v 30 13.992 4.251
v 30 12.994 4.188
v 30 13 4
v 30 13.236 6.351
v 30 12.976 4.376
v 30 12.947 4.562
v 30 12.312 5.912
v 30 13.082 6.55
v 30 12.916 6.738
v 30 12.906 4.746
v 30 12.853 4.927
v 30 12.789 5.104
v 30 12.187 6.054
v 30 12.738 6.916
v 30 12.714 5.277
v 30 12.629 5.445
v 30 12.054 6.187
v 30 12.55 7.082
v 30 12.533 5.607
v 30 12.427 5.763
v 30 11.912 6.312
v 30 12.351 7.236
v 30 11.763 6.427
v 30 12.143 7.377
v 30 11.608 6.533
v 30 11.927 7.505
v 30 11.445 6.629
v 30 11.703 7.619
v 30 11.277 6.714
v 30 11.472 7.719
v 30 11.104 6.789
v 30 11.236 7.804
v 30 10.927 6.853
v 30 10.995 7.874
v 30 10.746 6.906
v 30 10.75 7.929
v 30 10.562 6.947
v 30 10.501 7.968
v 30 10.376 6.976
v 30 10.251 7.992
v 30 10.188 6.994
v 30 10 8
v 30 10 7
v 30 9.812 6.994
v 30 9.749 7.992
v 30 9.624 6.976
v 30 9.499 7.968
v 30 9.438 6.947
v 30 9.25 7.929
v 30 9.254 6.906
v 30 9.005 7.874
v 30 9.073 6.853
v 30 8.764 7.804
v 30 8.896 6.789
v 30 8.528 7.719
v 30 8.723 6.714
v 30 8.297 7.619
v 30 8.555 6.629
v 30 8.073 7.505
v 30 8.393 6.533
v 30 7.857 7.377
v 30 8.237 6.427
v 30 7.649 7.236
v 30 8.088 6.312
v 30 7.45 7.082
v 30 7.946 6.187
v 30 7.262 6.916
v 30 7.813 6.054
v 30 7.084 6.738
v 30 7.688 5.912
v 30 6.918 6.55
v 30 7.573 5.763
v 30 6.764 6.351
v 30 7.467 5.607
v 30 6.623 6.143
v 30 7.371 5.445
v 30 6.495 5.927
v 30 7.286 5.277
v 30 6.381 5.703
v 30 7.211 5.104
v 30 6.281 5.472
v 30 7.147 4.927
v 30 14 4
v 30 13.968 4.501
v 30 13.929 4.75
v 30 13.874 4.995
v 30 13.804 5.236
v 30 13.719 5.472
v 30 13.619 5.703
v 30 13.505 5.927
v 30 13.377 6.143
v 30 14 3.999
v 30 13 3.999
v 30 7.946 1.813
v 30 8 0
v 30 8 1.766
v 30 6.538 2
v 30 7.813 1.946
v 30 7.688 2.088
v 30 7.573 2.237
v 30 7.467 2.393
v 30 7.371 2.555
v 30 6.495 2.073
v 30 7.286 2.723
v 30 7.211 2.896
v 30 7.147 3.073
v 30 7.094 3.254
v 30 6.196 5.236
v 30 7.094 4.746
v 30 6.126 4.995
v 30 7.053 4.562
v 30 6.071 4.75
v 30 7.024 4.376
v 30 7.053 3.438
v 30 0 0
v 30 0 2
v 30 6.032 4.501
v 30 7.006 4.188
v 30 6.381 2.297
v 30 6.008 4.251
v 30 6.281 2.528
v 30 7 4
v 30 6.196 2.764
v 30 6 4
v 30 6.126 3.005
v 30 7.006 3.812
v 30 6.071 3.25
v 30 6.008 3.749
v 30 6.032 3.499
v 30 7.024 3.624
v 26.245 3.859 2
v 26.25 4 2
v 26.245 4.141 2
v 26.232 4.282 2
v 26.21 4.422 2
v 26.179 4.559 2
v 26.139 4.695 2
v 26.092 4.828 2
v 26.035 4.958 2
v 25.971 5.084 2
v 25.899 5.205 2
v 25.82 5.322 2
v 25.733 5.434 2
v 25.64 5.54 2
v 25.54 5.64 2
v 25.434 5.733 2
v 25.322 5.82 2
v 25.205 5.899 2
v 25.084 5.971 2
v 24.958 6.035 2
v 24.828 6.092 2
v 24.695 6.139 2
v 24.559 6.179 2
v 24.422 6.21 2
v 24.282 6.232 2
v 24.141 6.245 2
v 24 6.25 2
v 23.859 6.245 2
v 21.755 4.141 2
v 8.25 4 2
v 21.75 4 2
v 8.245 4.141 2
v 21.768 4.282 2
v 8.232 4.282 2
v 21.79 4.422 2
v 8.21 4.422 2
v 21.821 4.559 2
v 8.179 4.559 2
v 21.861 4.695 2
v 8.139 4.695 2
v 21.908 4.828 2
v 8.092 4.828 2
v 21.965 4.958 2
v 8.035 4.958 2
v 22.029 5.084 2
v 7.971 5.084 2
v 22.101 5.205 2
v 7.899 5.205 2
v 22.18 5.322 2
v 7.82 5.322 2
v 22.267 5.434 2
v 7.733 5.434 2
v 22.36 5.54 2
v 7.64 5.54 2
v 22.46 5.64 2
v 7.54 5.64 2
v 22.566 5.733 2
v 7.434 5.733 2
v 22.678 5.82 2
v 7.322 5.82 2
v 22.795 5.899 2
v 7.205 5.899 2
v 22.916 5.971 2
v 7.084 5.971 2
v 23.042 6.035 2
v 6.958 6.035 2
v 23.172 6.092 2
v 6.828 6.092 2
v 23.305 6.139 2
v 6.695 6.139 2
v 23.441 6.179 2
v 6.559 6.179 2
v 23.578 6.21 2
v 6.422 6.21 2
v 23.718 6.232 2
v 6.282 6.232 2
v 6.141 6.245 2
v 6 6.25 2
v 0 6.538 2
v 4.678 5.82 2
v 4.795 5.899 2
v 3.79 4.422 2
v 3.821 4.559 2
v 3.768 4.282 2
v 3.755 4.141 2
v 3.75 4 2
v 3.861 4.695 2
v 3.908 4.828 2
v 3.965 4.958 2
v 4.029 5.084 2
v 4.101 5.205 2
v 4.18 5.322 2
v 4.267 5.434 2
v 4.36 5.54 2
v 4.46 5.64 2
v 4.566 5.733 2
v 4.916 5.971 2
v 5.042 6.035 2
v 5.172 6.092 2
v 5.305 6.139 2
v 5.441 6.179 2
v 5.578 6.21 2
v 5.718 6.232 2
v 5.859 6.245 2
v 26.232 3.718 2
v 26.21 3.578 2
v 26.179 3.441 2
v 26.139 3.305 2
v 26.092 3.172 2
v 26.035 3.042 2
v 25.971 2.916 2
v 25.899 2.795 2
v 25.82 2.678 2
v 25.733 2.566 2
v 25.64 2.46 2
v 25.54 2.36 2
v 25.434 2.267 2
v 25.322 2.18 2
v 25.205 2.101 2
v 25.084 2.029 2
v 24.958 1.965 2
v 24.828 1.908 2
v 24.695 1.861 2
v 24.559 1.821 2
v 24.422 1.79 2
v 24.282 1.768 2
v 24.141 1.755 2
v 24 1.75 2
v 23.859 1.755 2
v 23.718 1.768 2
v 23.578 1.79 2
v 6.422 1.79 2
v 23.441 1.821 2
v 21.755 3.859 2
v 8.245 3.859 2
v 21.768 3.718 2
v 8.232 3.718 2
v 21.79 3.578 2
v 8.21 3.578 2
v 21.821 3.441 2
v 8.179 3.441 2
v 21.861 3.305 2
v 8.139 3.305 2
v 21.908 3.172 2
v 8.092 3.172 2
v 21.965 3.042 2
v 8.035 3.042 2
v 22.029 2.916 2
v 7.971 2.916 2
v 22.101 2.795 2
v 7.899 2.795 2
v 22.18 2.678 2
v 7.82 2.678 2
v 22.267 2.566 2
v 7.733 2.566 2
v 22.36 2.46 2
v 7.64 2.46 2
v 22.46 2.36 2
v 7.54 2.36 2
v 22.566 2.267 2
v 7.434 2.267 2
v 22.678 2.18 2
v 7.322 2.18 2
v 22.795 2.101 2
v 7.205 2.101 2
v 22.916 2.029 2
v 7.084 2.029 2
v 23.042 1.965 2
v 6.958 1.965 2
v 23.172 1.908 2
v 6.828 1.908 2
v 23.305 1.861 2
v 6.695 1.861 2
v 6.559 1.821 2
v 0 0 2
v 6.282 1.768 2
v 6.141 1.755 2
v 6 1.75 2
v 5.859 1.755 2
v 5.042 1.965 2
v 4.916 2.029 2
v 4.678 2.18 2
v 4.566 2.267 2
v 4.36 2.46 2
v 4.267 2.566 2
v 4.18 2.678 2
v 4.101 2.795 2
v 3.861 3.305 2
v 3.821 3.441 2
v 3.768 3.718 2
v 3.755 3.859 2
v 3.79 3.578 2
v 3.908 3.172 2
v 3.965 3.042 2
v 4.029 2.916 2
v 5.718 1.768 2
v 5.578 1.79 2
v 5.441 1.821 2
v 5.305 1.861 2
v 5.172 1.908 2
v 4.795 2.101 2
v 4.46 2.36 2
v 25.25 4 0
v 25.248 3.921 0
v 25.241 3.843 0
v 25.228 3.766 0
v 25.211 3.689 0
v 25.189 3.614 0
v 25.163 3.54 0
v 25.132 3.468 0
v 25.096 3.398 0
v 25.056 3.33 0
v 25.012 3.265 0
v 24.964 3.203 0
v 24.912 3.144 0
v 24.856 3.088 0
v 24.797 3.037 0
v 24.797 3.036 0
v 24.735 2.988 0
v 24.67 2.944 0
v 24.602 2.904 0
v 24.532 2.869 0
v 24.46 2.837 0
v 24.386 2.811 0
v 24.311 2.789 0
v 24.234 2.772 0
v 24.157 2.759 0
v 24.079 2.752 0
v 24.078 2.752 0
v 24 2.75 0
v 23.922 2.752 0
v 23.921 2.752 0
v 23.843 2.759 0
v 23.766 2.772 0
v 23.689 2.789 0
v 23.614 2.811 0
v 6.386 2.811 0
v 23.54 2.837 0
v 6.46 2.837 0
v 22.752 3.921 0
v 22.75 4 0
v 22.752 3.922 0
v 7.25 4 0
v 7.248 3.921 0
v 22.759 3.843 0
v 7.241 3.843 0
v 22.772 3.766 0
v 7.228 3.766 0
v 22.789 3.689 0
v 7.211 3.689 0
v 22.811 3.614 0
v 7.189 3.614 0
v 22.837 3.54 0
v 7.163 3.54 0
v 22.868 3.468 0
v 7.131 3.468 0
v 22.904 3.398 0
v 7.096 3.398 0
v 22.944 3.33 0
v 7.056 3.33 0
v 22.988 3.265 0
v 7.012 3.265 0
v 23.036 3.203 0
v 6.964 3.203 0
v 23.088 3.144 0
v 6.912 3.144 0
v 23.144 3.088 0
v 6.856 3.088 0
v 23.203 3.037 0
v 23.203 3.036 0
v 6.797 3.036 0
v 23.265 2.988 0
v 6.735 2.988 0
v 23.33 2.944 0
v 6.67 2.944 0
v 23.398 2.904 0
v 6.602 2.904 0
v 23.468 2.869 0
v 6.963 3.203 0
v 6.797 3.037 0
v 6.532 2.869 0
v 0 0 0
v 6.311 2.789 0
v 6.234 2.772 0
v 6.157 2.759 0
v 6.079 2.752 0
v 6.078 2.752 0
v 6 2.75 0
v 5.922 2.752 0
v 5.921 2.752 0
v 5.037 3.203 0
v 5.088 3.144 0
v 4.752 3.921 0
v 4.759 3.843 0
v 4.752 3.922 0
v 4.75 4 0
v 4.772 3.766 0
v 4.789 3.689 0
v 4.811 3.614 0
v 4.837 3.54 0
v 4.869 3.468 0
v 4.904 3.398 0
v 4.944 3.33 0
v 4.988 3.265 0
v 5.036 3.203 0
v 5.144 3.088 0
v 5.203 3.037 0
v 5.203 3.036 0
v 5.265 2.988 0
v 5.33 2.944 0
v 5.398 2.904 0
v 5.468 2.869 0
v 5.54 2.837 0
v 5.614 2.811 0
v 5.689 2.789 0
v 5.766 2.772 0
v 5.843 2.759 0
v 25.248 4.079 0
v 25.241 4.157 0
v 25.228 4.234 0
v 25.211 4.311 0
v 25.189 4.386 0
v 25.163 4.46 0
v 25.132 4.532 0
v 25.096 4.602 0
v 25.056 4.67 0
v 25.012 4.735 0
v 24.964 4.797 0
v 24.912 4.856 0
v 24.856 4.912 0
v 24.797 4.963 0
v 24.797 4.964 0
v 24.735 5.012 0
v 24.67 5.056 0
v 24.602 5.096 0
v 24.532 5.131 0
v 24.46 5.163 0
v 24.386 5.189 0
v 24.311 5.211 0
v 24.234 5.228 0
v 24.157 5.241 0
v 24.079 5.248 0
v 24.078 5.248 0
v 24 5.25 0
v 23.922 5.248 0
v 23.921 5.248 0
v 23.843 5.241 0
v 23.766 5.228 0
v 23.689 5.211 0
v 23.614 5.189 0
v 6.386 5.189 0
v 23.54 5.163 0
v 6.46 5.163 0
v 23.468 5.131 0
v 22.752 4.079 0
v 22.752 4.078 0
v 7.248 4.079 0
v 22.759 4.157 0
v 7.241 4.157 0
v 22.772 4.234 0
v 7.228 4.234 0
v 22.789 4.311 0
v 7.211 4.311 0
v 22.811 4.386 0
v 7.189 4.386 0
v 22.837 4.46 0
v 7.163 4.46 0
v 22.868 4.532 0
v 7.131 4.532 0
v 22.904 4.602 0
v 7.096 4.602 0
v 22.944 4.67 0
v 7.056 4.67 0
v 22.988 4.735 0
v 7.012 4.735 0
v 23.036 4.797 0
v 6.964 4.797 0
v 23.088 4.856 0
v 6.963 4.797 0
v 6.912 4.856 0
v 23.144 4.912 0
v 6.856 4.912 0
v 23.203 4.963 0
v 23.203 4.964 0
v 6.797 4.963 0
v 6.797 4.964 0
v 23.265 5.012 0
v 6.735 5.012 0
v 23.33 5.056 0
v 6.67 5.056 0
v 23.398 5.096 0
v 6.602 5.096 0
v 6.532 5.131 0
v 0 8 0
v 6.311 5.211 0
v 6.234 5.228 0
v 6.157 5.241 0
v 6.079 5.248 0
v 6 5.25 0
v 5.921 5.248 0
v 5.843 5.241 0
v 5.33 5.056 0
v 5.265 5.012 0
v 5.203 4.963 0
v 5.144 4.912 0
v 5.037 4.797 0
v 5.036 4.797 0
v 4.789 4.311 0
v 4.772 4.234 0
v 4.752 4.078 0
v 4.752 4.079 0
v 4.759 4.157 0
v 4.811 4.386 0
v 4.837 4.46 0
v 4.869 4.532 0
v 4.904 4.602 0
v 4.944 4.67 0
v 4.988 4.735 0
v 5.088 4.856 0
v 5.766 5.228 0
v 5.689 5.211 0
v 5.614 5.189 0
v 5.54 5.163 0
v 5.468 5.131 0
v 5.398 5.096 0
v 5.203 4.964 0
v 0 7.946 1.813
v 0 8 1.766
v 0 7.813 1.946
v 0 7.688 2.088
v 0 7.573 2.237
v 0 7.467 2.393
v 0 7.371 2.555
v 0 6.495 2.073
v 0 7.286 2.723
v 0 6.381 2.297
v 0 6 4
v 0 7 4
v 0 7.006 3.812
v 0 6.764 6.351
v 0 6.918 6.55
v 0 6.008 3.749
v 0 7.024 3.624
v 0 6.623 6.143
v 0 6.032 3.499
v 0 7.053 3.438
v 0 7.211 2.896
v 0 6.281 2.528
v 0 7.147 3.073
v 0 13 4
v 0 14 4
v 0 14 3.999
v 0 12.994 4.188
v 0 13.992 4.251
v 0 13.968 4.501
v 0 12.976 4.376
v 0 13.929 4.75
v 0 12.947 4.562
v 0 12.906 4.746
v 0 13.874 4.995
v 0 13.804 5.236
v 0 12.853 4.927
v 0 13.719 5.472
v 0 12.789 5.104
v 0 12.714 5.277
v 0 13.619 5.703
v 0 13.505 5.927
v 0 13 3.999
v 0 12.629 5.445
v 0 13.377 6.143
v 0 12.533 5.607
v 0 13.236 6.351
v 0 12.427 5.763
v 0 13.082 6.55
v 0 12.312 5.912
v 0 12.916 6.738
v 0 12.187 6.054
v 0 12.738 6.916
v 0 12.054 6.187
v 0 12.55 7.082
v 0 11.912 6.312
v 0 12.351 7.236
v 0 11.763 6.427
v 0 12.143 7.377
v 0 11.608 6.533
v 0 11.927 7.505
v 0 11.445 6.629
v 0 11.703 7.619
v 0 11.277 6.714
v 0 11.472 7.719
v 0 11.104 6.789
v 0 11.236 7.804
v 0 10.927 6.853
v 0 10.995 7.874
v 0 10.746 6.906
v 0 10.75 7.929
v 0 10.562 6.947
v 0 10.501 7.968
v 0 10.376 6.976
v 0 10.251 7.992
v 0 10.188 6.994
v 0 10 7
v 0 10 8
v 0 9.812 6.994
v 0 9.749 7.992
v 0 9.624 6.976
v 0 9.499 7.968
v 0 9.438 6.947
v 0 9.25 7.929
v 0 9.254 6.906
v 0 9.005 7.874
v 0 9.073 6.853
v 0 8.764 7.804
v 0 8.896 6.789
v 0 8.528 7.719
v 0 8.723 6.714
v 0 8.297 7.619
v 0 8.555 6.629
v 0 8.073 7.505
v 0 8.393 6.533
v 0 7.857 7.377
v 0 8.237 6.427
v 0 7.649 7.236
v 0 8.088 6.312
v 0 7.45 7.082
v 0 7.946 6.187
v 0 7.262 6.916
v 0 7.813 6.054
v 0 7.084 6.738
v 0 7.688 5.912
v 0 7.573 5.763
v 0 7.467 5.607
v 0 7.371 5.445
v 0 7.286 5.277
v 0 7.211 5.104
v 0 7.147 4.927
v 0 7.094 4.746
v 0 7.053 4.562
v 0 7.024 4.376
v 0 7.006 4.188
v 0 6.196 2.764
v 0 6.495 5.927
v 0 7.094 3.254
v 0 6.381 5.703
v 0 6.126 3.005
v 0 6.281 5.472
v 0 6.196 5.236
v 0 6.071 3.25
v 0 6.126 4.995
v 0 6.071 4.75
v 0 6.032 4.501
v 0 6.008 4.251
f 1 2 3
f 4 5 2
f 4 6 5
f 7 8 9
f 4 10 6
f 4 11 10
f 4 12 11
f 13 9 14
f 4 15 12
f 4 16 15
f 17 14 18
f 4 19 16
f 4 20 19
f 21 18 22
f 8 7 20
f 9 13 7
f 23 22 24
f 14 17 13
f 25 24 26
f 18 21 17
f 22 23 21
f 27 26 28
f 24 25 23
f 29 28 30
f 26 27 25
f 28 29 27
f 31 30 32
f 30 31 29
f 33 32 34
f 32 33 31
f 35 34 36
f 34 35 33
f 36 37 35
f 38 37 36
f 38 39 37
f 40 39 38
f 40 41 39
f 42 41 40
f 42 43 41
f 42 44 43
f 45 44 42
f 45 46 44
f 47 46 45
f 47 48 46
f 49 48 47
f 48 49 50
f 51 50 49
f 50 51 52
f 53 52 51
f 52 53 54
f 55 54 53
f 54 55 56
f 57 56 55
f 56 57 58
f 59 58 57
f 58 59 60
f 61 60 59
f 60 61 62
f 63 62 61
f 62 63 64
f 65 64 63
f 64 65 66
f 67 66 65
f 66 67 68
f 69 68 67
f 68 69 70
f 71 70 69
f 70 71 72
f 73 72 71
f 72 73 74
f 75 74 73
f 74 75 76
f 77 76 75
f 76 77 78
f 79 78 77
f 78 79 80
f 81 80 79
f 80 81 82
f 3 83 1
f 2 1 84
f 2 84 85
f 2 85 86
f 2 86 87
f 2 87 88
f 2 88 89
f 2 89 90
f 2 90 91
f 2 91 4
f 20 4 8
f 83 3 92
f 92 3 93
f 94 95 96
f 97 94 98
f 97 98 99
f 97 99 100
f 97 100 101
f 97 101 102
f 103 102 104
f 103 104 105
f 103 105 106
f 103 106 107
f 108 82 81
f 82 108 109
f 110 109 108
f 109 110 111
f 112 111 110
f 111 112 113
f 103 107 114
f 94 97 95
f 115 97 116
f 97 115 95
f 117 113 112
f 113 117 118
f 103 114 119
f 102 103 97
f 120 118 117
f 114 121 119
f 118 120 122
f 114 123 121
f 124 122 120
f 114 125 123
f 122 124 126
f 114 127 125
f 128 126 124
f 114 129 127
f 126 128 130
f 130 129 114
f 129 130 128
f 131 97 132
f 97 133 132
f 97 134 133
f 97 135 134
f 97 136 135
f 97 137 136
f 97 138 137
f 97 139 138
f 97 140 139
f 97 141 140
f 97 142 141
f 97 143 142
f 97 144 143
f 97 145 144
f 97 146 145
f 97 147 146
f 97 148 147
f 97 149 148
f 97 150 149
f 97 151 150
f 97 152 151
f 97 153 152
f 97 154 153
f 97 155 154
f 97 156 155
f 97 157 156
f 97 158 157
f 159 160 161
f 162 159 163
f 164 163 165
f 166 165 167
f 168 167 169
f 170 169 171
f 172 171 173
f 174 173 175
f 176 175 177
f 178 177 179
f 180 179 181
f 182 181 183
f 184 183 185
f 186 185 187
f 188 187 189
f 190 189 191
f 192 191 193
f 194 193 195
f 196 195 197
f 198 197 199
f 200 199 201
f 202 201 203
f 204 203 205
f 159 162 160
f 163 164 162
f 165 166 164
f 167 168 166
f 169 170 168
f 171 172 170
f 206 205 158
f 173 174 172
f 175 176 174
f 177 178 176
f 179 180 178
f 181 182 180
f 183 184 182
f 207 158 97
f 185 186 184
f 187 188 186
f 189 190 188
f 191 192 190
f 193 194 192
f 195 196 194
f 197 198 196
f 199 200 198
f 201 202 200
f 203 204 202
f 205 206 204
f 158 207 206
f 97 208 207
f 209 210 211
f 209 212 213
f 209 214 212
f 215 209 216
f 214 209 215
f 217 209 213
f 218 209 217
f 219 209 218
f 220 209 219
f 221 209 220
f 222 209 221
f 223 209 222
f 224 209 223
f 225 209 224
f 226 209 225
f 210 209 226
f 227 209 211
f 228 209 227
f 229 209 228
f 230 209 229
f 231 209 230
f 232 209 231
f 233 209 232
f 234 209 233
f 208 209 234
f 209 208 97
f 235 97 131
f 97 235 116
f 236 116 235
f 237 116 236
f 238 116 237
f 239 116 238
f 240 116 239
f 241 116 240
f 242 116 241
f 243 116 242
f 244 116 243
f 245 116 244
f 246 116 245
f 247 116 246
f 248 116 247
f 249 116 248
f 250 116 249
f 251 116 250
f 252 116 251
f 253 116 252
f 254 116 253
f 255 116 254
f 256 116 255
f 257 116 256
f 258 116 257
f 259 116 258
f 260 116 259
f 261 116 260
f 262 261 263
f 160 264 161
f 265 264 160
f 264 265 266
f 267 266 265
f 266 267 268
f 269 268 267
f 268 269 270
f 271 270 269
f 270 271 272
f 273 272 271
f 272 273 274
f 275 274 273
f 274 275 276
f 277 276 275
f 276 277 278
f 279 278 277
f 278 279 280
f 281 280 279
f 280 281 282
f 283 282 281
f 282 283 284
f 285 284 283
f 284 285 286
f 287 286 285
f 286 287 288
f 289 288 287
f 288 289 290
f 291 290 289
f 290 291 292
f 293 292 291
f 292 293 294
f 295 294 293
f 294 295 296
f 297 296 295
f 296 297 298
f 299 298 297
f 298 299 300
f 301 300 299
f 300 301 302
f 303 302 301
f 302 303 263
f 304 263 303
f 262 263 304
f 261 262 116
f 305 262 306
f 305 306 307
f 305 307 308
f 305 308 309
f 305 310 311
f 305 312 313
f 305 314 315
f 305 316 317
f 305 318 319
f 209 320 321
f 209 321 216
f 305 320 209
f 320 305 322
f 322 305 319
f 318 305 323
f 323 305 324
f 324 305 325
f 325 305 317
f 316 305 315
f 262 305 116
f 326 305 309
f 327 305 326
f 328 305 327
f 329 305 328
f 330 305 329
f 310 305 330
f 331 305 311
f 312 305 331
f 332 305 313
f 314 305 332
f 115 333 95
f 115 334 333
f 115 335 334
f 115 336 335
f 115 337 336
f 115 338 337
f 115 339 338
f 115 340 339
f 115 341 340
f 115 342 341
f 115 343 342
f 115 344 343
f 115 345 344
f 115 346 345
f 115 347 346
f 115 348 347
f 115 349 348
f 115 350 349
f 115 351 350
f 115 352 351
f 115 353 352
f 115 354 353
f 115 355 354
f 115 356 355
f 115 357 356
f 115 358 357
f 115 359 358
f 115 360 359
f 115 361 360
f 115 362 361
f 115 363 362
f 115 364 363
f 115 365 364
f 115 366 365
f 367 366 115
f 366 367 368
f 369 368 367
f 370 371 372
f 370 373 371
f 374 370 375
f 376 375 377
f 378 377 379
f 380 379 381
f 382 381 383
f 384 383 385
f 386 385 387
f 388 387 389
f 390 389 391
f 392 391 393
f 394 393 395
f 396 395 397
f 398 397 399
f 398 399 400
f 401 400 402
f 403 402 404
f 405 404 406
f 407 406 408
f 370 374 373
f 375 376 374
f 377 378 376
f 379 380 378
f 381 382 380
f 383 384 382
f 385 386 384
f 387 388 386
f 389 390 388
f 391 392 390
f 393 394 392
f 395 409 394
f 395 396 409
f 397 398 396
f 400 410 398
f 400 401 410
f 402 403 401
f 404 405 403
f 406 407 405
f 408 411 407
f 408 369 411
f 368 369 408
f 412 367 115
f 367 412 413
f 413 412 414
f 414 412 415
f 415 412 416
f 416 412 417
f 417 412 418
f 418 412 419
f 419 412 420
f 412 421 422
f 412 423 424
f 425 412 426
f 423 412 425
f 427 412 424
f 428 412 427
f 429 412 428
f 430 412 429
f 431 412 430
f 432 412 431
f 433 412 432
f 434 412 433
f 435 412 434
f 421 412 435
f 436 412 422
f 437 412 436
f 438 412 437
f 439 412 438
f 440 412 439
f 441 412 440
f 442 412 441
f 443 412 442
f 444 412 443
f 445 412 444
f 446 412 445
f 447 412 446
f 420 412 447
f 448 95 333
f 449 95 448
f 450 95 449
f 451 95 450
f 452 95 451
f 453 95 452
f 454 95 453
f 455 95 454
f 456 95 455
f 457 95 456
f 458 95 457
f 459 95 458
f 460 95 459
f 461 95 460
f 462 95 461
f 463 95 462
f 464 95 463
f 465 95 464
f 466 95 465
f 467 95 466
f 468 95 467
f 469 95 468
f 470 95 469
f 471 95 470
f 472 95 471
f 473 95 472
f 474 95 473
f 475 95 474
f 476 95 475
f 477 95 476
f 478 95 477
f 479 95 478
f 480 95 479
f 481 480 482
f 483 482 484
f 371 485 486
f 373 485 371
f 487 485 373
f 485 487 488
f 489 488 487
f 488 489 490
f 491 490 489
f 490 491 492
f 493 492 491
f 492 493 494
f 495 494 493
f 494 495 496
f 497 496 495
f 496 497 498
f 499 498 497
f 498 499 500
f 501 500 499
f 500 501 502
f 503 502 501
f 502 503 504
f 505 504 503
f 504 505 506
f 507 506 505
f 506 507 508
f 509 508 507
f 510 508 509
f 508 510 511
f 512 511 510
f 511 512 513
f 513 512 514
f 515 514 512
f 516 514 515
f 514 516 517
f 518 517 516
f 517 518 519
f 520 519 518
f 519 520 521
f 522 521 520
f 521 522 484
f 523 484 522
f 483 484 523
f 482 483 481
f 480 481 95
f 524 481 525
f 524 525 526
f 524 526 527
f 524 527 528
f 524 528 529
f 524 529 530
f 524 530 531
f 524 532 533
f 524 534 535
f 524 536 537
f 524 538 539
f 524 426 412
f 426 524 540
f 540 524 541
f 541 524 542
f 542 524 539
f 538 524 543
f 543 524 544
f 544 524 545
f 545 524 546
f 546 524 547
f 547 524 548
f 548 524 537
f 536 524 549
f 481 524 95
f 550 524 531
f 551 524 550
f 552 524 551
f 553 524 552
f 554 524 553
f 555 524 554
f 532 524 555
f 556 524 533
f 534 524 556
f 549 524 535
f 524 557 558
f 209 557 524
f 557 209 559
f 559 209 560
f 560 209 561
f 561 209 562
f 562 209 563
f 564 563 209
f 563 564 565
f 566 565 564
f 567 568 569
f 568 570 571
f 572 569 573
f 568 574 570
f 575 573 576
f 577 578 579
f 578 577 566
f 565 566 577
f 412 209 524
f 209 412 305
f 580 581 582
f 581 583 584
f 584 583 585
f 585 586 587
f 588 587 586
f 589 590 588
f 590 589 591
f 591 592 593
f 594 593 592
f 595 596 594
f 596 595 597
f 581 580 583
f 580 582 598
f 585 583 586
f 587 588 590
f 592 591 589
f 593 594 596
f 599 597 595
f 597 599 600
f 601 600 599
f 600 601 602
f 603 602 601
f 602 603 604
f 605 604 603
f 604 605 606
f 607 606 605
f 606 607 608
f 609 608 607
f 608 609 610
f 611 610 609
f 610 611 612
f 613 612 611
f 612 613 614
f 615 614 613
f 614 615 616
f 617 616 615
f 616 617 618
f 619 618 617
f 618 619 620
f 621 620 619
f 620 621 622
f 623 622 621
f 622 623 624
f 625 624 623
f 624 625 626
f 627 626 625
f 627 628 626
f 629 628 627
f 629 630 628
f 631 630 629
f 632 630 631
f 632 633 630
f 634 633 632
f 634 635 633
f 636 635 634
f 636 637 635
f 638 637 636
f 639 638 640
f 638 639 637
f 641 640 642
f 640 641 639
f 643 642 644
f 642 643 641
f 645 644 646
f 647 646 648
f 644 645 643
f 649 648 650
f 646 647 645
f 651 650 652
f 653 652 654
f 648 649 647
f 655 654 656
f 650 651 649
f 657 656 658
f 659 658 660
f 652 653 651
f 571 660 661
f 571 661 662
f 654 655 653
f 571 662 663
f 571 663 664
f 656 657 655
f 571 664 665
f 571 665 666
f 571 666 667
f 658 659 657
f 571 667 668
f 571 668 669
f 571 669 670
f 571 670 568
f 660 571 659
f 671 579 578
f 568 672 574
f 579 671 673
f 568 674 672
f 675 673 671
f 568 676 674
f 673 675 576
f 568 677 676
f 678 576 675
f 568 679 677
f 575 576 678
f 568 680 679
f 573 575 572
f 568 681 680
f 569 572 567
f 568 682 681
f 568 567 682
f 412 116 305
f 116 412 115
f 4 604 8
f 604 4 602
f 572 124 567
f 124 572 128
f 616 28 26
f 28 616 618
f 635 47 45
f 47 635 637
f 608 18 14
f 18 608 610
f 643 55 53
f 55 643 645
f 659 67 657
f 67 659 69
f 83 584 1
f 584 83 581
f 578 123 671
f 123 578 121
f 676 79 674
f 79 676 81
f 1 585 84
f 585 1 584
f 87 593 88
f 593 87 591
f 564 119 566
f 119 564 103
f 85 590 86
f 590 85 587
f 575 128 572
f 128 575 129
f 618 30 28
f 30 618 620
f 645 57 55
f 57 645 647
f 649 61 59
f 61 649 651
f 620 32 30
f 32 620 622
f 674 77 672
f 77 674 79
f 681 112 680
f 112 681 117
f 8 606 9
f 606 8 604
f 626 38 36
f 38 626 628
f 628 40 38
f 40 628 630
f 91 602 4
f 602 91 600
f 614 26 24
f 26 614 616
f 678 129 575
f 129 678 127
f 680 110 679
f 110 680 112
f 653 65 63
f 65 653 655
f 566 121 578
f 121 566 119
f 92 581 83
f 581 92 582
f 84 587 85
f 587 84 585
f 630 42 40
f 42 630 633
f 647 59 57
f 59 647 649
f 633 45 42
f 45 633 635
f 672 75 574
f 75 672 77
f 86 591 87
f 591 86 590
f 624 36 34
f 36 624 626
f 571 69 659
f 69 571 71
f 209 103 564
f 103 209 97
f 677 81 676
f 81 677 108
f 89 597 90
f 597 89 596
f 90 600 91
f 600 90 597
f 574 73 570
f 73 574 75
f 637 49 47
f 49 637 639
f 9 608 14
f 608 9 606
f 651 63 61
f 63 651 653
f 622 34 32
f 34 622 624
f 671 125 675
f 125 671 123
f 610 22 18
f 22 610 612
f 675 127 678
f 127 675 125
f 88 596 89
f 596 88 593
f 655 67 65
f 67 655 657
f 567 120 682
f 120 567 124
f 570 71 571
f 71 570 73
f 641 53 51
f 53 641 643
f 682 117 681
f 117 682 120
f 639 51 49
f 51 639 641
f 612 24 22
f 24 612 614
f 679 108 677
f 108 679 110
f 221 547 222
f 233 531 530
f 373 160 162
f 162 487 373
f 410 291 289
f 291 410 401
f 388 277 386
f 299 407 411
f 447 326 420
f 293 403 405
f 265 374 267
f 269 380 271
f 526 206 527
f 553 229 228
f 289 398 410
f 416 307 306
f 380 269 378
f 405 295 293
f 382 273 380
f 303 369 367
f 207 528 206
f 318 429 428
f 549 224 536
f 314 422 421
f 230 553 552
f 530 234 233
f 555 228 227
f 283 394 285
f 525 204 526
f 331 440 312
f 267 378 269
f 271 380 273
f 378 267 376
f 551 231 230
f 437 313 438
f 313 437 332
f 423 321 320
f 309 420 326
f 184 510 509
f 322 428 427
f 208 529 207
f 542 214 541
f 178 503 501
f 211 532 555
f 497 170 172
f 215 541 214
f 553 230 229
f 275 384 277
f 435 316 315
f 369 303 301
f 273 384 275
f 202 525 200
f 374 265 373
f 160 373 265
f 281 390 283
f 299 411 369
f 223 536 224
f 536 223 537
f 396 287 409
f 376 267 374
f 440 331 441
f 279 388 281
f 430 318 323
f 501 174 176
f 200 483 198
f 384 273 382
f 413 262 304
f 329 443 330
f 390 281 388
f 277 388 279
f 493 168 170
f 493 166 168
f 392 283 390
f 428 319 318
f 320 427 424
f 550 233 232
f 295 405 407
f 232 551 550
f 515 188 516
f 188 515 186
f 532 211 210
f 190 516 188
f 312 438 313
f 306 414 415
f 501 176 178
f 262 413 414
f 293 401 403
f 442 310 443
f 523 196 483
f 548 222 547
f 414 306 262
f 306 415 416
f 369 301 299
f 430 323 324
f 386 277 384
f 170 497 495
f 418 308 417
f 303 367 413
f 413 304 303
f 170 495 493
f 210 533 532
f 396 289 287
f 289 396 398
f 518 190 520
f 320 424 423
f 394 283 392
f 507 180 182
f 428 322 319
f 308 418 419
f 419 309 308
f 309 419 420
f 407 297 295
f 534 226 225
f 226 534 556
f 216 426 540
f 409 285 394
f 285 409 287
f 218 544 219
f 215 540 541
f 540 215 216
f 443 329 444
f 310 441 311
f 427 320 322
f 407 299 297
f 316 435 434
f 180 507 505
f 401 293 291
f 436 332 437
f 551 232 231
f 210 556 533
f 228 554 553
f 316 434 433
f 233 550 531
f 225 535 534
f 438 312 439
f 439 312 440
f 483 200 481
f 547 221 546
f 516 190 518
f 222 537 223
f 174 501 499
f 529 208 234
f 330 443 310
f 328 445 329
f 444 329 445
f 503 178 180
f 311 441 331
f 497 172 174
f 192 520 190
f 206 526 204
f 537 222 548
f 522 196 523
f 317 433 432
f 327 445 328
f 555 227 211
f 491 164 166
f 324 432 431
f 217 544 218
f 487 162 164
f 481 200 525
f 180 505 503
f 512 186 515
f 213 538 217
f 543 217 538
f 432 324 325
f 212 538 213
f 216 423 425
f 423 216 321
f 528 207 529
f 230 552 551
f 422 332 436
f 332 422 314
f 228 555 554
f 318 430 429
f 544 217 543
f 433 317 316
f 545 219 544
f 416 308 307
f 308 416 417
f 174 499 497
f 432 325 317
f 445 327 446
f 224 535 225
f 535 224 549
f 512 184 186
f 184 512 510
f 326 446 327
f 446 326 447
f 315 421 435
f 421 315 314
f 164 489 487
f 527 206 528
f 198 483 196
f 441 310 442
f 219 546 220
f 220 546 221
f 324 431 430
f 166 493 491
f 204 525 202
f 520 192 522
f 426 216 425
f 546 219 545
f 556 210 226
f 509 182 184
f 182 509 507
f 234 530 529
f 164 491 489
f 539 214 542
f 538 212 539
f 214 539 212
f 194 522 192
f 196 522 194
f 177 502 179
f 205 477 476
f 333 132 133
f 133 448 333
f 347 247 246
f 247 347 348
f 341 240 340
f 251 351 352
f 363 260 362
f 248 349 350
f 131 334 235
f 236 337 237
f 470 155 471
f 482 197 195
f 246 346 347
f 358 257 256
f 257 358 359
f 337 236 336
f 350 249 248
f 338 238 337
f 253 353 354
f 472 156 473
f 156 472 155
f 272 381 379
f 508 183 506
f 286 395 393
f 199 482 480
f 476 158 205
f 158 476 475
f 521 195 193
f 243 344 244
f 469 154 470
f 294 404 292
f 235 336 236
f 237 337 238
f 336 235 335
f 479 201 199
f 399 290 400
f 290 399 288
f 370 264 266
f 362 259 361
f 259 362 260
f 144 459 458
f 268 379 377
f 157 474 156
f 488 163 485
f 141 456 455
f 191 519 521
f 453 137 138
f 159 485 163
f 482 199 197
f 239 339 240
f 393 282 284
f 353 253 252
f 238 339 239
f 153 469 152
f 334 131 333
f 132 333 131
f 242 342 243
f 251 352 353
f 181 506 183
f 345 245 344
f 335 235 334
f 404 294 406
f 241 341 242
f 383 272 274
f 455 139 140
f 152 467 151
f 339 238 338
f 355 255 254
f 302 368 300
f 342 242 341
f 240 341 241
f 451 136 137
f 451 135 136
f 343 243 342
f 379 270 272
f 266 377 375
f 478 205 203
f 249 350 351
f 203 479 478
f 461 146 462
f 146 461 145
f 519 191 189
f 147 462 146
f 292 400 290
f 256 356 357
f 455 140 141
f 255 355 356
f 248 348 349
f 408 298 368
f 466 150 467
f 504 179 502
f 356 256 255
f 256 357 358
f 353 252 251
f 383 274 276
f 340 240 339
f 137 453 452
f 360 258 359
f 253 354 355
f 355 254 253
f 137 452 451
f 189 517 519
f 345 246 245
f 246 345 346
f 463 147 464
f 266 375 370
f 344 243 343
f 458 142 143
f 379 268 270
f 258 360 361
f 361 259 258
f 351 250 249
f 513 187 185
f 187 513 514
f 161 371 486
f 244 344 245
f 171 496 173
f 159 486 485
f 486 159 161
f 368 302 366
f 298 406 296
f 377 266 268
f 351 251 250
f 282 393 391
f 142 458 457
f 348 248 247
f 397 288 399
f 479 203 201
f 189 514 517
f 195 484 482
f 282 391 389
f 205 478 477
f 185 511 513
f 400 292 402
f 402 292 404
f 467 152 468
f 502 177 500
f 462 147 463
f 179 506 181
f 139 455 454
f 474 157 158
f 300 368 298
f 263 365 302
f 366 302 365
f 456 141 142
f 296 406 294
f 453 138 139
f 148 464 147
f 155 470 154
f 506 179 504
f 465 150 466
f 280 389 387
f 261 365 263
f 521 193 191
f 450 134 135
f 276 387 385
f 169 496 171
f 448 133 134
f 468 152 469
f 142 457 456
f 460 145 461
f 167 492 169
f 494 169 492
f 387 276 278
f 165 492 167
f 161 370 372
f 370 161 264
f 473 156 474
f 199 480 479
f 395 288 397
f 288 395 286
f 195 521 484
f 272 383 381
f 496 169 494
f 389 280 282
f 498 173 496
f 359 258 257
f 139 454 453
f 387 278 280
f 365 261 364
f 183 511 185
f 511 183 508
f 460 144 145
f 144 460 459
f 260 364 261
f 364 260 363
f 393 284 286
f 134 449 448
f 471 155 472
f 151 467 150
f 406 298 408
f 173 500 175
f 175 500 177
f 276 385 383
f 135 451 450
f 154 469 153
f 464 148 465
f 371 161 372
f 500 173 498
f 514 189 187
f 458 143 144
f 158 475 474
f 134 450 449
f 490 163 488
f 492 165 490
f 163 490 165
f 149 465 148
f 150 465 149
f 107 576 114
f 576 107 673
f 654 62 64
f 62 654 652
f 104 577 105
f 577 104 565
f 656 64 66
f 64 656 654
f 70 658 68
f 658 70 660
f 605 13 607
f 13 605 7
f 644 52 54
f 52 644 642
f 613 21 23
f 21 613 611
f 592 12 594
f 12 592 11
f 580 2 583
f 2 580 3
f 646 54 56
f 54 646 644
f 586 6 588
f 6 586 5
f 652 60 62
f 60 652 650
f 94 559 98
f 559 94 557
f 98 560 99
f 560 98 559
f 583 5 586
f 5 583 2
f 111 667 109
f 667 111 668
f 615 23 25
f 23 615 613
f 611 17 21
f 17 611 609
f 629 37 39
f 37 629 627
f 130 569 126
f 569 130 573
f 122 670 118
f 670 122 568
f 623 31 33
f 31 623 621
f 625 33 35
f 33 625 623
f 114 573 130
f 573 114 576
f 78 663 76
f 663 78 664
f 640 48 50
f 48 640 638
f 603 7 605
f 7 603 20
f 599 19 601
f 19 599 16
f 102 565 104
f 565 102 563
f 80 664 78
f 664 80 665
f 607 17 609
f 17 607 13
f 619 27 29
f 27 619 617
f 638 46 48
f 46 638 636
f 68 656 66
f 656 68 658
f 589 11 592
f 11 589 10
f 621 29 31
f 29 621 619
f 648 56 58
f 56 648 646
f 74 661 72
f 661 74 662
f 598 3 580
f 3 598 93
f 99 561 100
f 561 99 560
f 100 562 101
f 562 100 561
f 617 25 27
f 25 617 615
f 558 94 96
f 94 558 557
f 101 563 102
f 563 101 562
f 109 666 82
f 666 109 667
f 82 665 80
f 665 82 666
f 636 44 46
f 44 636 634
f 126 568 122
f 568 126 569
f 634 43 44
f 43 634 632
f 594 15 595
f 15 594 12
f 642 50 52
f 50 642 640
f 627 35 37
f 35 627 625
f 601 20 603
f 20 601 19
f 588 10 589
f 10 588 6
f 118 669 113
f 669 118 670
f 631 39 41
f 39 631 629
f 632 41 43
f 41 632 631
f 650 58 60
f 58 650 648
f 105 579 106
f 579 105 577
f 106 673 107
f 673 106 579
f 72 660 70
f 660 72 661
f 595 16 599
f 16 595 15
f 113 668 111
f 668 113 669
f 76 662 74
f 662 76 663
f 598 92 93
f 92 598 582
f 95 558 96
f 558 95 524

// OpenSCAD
//
// ktRACK6
//
//


gap1 = 0.001;
gap2 = 0.002;

panel_thick = 2;


X = 30;


difference()
{
    union()
    {
        translate([0, 0, 0]) cube([X, 10, panel_thick]);
        translate([0, 10, 8/2]) rotate([0, 90, 0]) cylinder(X, d=8, $fn=100);
    }
    translate([6, 4, -gap1]) rotate([0, 0, 0]) cylinder(  panel_thick+gap2, d1=2.5, d2=4.5, $fn=100);
    translate([X-6, 4, -gap1]) rotate([0, 0, 0]) cylinder(  panel_thick+gap2, d1=2.5, d2=4.5, $fn=100);
    
    translate([-gap1, 10, 8/2]) rotate([0, 90, 0]) cylinder(X+gap2, d=6, $fn=100);
    translate([-gap1, 10-5/2+0.5, -gap1-2]) cube([X+gap2, 8, 6]);
}
